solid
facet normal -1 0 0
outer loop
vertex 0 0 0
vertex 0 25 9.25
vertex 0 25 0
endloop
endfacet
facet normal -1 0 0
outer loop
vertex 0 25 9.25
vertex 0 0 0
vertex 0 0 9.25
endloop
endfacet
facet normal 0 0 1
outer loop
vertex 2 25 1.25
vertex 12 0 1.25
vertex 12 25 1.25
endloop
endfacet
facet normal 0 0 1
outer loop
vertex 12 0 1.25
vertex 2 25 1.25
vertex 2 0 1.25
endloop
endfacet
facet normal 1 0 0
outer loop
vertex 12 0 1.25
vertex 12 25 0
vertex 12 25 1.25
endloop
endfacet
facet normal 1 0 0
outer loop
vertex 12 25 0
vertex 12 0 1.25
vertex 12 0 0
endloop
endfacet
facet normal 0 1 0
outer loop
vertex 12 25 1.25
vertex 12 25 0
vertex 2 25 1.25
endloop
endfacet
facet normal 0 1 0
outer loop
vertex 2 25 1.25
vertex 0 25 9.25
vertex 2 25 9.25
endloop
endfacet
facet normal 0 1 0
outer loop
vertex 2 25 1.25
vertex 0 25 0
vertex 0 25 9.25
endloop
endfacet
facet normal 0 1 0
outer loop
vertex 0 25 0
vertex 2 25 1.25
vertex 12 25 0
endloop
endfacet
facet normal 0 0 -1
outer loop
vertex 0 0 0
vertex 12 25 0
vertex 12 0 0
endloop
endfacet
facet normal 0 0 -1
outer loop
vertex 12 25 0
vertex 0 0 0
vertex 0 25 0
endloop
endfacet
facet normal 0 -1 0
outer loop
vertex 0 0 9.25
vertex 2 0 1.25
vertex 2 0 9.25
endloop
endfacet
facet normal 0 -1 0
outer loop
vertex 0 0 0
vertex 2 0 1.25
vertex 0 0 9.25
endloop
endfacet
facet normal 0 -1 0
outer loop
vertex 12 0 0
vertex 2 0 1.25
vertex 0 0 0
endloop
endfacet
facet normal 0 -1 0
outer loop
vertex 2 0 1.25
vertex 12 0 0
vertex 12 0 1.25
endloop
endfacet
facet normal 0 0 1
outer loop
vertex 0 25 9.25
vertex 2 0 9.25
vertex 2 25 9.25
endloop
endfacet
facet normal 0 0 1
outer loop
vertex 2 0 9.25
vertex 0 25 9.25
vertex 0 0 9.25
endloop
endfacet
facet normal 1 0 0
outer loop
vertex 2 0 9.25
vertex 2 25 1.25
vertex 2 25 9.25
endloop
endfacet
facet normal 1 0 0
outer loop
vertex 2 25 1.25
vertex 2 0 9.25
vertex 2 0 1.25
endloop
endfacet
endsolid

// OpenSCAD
 union() {
        // GSB Door
        cube([12,25,1.25]);
     
        // Door Handle
        translate([0,0,1.25]) {
            color([0,1,0])
            cube([2,25,8]);
        }
 }
